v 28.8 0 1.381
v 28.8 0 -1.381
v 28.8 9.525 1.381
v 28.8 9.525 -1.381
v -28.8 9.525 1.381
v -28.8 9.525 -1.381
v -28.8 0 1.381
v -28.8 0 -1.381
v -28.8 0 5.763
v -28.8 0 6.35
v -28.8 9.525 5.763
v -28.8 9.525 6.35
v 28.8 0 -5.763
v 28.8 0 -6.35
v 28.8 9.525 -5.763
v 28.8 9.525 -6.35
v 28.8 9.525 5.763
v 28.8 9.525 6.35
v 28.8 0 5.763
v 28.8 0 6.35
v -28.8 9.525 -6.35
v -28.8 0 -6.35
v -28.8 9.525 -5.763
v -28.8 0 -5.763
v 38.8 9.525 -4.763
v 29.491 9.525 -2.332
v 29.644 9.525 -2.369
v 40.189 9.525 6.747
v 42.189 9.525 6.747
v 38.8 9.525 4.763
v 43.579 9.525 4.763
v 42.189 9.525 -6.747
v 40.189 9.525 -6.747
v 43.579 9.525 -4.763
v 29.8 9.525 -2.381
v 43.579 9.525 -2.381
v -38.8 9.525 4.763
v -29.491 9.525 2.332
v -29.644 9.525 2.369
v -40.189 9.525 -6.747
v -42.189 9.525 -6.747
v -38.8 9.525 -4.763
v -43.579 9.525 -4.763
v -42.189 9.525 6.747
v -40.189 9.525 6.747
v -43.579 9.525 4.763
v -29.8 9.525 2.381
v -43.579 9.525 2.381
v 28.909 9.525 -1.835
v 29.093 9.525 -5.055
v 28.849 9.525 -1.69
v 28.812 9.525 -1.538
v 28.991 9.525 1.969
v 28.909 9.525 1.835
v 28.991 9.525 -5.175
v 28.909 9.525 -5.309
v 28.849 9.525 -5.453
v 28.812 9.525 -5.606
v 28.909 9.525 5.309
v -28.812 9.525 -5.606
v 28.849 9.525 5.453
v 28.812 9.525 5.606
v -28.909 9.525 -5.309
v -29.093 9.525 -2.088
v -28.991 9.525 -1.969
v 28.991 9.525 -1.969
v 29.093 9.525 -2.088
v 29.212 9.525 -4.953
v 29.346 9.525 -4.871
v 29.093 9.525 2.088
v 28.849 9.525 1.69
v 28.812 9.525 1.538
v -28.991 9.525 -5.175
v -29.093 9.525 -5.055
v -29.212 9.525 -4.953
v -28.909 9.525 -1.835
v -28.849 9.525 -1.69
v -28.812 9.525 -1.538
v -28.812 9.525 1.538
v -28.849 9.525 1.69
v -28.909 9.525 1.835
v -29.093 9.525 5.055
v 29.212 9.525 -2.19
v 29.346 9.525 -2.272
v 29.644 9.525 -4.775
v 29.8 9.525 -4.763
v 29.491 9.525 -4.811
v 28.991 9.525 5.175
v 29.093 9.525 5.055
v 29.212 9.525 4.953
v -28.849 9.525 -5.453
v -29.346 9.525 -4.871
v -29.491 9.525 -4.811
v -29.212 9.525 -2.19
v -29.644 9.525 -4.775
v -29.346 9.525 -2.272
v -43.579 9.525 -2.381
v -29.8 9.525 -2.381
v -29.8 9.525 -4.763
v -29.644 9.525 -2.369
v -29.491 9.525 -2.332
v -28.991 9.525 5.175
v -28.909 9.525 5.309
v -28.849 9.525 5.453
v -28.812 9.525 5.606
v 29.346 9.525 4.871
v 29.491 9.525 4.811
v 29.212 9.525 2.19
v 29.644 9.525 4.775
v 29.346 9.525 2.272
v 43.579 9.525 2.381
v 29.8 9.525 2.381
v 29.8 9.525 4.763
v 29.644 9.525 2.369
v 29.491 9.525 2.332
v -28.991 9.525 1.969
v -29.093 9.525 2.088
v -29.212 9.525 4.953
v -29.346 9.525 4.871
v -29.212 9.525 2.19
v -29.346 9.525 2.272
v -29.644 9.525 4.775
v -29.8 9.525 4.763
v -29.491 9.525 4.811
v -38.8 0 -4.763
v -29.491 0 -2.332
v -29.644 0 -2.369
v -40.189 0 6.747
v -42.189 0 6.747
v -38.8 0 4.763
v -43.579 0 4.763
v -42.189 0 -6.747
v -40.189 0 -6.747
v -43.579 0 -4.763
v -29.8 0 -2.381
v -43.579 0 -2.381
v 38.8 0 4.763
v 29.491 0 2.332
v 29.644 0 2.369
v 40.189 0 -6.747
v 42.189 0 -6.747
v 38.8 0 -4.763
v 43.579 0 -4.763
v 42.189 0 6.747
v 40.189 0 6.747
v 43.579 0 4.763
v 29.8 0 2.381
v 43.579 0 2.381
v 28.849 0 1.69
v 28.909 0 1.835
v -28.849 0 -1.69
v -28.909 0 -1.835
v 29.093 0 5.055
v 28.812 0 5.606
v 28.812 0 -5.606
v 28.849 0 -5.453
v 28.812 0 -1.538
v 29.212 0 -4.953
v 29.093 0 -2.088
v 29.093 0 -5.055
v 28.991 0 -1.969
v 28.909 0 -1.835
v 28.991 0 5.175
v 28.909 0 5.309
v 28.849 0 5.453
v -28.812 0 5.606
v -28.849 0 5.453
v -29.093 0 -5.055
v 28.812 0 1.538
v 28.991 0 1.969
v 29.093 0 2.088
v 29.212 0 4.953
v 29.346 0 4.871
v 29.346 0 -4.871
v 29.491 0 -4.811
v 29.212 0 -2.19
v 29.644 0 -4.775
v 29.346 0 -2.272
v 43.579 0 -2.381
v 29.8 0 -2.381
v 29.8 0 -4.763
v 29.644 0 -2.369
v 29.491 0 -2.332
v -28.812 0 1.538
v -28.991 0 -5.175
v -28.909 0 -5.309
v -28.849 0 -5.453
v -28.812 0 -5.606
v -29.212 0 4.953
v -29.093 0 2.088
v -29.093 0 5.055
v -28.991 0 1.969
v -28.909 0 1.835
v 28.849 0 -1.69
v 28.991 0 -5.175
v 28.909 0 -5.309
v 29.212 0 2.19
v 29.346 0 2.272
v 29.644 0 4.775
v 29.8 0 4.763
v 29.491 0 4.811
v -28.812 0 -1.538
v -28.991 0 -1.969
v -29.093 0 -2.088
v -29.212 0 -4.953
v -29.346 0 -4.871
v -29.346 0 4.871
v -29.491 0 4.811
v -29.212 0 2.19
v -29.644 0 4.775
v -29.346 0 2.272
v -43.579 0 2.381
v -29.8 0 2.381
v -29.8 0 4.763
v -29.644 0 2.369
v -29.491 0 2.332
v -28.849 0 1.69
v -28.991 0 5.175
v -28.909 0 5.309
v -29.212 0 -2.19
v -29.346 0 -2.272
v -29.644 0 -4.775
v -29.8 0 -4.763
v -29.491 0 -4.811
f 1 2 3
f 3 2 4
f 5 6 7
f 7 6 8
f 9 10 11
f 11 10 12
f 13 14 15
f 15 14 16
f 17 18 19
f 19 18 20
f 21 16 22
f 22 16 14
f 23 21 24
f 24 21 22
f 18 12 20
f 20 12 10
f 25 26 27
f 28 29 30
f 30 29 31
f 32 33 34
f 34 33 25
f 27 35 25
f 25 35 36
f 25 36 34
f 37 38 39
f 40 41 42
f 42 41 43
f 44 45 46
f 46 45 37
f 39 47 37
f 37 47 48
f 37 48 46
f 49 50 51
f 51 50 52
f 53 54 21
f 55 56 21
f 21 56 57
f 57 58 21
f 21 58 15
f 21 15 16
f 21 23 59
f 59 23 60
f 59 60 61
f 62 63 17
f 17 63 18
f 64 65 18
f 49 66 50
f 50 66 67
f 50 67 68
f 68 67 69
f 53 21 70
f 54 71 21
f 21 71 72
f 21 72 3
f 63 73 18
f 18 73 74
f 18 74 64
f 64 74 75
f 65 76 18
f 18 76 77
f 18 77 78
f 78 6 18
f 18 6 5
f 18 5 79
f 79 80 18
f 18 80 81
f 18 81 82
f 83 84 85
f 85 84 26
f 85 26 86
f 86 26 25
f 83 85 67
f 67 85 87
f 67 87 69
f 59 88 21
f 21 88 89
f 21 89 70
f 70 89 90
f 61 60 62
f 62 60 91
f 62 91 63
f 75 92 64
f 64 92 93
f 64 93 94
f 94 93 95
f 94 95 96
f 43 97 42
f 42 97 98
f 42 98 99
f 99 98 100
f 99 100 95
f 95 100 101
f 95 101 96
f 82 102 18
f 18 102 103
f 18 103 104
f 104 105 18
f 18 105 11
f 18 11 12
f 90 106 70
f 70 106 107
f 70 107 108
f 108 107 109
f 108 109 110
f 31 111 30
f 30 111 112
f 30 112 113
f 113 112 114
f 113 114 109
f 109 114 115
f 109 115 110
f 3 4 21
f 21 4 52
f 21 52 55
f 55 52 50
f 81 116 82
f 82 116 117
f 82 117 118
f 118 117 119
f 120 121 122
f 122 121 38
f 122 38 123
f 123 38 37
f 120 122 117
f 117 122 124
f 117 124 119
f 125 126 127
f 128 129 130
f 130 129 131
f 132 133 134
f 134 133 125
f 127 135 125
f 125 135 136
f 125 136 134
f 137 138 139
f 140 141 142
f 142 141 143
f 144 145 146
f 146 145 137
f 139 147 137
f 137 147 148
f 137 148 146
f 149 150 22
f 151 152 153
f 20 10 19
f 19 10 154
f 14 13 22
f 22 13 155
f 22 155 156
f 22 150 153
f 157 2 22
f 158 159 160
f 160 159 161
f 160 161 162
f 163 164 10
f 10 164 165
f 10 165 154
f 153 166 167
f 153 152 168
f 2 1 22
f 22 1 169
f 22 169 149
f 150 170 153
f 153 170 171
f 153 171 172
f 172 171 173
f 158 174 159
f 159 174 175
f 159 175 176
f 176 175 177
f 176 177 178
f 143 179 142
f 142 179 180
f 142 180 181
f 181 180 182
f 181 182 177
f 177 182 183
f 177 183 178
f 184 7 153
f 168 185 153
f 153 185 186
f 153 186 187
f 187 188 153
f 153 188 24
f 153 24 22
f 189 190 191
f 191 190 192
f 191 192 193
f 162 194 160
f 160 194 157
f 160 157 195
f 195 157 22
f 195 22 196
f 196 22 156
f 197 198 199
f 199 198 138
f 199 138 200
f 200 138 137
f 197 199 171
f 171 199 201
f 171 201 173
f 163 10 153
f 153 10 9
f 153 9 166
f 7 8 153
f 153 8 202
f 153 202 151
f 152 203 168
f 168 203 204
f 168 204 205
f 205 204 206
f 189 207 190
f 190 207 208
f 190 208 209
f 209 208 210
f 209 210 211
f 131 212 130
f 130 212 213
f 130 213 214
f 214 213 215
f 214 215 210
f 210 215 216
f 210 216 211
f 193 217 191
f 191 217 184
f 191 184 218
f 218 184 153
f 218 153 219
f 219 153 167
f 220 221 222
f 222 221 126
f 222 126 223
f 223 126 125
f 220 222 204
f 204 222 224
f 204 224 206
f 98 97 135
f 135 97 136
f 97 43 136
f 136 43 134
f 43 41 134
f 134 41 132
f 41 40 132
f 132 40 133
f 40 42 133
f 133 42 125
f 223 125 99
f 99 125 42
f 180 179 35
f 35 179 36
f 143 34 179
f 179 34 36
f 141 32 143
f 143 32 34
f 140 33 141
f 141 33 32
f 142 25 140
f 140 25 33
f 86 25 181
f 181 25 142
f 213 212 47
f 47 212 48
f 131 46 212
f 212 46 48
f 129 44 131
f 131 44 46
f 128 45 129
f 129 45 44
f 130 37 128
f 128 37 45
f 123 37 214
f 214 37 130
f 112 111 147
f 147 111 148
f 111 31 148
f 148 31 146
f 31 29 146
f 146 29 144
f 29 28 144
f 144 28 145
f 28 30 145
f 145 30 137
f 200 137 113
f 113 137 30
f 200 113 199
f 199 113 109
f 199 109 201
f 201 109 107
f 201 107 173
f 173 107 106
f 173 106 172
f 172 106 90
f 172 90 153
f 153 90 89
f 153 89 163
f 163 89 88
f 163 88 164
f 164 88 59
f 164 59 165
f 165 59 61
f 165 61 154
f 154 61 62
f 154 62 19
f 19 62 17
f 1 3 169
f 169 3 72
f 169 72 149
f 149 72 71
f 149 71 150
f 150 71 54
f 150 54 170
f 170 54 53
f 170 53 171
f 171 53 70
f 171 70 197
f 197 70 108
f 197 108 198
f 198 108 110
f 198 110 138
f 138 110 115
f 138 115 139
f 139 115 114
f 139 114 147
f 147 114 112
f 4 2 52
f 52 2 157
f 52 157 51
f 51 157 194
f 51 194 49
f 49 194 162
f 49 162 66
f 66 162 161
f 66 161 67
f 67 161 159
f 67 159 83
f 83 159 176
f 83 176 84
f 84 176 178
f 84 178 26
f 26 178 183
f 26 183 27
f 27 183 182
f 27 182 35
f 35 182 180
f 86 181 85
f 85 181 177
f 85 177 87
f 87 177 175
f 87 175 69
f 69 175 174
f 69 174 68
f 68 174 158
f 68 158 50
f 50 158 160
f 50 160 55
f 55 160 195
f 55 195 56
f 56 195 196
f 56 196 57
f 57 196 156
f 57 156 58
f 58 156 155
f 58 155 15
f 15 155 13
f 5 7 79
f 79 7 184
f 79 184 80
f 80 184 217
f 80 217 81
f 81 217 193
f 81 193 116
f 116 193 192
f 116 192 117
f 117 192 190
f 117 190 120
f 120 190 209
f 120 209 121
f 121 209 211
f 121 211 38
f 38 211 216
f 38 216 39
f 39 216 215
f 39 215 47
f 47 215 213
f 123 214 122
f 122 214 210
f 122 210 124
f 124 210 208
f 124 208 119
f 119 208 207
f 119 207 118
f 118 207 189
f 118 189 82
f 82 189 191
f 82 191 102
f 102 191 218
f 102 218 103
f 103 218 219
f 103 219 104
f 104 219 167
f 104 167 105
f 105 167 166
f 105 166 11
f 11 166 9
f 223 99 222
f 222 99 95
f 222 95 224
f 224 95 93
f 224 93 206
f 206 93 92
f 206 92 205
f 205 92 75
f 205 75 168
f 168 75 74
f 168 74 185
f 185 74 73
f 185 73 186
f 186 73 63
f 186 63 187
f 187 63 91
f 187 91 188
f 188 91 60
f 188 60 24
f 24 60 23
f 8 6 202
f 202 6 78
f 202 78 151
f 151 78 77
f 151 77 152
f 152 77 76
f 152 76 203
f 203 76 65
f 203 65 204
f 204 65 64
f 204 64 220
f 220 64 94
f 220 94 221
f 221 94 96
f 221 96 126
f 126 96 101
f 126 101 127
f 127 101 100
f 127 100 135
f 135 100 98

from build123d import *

# Parameters (mm, degrees)
SKETCH1_W            = 57.6
SKETCH1_H            = 12.7
BOSS_EXTRUDE1_DEPTH  = 9.525
BOSS_EXTRUDE2_DEPTH  = 9.525
MIRROR2_COPY_1_DEPTH = 9.525
FILLET1_R            = 1


with BuildPart() as part:
    # Sketch1 → Boss-Extrude1 (new body)
    with BuildSketch(Plane(origin=(0, 0, 0), x_dir=(1, 0, 0), z_dir=(0, 1, 0))):
        Rectangle(SKETCH1_W, SKETCH1_H)
    extrude(amount=BOSS_EXTRUDE1_DEPTH)

    # Sketch2 → Boss-Extrude2 (add)
    with BuildSketch(Plane(origin=(0, 9.525, 0), x_dir=(1, 0, 0), z_dir=(0, 1, 0))):
        Polygon((-28.8, 4.7625), (-38.8, 4.7625), (-40.189474334, 6.746875), (-42.189474334, 6.746875), (-43.578948667, 4.7625), (-43.578948667, 2.38125), (-28.8, 2.38125), align=None)
    boss_extrude2 = extrude(amount=-BOSS_EXTRUDE2_DEPTH)

    # Mirror1: Boss-Extrude2 across plane
    add(boss_extrude2.mirror(Plane(origin=(0, 0, 0), x_dir=(0, 0, 1), z_dir=(1, 0, 0))))

    # Mirror2: Boss-Extrude2 across plane
    add(boss_extrude2.mirror(Plane.XY))

    # Mirror2 copy 1 sketch → Mirror2 copy 1 (add)
    with BuildSketch(Plane(origin=(0, 9.525, 0), x_dir=(-1, 0, 0), z_dir=(0, 1, 0))):
        Polygon((-28.8, 4.7625), (-38.8, 4.7625), (-40.189474334, 6.746875), (-42.189474334, 6.746875), (-43.578948667, 4.7625), (-43.578948667, 2.38125), (-28.8, 2.38125), align=None)
    extrude(amount=-MIRROR2_COPY_1_DEPTH)

    # Fillet1
    fillet1_edges = [part.edges().sort_by_distance(p)[0] for p in [
        (-28.8, 4.7625, -4.7625),
        (-28.8, 4.7625, -2.38125),
        (28.8, 4.7625, -4.7625),
        (28.8, 4.7625, -2.38125),
        (-28.8, 4.7625, 4.7625),
        (-28.8, 4.7625, 2.38125),
        (28.8, 4.7625, 4.7625),
        (28.8, 4.7625, 2.38125),
    ]]
    fillet(fillet1_edges, radius=FILLET1_R)


solid = part.part
